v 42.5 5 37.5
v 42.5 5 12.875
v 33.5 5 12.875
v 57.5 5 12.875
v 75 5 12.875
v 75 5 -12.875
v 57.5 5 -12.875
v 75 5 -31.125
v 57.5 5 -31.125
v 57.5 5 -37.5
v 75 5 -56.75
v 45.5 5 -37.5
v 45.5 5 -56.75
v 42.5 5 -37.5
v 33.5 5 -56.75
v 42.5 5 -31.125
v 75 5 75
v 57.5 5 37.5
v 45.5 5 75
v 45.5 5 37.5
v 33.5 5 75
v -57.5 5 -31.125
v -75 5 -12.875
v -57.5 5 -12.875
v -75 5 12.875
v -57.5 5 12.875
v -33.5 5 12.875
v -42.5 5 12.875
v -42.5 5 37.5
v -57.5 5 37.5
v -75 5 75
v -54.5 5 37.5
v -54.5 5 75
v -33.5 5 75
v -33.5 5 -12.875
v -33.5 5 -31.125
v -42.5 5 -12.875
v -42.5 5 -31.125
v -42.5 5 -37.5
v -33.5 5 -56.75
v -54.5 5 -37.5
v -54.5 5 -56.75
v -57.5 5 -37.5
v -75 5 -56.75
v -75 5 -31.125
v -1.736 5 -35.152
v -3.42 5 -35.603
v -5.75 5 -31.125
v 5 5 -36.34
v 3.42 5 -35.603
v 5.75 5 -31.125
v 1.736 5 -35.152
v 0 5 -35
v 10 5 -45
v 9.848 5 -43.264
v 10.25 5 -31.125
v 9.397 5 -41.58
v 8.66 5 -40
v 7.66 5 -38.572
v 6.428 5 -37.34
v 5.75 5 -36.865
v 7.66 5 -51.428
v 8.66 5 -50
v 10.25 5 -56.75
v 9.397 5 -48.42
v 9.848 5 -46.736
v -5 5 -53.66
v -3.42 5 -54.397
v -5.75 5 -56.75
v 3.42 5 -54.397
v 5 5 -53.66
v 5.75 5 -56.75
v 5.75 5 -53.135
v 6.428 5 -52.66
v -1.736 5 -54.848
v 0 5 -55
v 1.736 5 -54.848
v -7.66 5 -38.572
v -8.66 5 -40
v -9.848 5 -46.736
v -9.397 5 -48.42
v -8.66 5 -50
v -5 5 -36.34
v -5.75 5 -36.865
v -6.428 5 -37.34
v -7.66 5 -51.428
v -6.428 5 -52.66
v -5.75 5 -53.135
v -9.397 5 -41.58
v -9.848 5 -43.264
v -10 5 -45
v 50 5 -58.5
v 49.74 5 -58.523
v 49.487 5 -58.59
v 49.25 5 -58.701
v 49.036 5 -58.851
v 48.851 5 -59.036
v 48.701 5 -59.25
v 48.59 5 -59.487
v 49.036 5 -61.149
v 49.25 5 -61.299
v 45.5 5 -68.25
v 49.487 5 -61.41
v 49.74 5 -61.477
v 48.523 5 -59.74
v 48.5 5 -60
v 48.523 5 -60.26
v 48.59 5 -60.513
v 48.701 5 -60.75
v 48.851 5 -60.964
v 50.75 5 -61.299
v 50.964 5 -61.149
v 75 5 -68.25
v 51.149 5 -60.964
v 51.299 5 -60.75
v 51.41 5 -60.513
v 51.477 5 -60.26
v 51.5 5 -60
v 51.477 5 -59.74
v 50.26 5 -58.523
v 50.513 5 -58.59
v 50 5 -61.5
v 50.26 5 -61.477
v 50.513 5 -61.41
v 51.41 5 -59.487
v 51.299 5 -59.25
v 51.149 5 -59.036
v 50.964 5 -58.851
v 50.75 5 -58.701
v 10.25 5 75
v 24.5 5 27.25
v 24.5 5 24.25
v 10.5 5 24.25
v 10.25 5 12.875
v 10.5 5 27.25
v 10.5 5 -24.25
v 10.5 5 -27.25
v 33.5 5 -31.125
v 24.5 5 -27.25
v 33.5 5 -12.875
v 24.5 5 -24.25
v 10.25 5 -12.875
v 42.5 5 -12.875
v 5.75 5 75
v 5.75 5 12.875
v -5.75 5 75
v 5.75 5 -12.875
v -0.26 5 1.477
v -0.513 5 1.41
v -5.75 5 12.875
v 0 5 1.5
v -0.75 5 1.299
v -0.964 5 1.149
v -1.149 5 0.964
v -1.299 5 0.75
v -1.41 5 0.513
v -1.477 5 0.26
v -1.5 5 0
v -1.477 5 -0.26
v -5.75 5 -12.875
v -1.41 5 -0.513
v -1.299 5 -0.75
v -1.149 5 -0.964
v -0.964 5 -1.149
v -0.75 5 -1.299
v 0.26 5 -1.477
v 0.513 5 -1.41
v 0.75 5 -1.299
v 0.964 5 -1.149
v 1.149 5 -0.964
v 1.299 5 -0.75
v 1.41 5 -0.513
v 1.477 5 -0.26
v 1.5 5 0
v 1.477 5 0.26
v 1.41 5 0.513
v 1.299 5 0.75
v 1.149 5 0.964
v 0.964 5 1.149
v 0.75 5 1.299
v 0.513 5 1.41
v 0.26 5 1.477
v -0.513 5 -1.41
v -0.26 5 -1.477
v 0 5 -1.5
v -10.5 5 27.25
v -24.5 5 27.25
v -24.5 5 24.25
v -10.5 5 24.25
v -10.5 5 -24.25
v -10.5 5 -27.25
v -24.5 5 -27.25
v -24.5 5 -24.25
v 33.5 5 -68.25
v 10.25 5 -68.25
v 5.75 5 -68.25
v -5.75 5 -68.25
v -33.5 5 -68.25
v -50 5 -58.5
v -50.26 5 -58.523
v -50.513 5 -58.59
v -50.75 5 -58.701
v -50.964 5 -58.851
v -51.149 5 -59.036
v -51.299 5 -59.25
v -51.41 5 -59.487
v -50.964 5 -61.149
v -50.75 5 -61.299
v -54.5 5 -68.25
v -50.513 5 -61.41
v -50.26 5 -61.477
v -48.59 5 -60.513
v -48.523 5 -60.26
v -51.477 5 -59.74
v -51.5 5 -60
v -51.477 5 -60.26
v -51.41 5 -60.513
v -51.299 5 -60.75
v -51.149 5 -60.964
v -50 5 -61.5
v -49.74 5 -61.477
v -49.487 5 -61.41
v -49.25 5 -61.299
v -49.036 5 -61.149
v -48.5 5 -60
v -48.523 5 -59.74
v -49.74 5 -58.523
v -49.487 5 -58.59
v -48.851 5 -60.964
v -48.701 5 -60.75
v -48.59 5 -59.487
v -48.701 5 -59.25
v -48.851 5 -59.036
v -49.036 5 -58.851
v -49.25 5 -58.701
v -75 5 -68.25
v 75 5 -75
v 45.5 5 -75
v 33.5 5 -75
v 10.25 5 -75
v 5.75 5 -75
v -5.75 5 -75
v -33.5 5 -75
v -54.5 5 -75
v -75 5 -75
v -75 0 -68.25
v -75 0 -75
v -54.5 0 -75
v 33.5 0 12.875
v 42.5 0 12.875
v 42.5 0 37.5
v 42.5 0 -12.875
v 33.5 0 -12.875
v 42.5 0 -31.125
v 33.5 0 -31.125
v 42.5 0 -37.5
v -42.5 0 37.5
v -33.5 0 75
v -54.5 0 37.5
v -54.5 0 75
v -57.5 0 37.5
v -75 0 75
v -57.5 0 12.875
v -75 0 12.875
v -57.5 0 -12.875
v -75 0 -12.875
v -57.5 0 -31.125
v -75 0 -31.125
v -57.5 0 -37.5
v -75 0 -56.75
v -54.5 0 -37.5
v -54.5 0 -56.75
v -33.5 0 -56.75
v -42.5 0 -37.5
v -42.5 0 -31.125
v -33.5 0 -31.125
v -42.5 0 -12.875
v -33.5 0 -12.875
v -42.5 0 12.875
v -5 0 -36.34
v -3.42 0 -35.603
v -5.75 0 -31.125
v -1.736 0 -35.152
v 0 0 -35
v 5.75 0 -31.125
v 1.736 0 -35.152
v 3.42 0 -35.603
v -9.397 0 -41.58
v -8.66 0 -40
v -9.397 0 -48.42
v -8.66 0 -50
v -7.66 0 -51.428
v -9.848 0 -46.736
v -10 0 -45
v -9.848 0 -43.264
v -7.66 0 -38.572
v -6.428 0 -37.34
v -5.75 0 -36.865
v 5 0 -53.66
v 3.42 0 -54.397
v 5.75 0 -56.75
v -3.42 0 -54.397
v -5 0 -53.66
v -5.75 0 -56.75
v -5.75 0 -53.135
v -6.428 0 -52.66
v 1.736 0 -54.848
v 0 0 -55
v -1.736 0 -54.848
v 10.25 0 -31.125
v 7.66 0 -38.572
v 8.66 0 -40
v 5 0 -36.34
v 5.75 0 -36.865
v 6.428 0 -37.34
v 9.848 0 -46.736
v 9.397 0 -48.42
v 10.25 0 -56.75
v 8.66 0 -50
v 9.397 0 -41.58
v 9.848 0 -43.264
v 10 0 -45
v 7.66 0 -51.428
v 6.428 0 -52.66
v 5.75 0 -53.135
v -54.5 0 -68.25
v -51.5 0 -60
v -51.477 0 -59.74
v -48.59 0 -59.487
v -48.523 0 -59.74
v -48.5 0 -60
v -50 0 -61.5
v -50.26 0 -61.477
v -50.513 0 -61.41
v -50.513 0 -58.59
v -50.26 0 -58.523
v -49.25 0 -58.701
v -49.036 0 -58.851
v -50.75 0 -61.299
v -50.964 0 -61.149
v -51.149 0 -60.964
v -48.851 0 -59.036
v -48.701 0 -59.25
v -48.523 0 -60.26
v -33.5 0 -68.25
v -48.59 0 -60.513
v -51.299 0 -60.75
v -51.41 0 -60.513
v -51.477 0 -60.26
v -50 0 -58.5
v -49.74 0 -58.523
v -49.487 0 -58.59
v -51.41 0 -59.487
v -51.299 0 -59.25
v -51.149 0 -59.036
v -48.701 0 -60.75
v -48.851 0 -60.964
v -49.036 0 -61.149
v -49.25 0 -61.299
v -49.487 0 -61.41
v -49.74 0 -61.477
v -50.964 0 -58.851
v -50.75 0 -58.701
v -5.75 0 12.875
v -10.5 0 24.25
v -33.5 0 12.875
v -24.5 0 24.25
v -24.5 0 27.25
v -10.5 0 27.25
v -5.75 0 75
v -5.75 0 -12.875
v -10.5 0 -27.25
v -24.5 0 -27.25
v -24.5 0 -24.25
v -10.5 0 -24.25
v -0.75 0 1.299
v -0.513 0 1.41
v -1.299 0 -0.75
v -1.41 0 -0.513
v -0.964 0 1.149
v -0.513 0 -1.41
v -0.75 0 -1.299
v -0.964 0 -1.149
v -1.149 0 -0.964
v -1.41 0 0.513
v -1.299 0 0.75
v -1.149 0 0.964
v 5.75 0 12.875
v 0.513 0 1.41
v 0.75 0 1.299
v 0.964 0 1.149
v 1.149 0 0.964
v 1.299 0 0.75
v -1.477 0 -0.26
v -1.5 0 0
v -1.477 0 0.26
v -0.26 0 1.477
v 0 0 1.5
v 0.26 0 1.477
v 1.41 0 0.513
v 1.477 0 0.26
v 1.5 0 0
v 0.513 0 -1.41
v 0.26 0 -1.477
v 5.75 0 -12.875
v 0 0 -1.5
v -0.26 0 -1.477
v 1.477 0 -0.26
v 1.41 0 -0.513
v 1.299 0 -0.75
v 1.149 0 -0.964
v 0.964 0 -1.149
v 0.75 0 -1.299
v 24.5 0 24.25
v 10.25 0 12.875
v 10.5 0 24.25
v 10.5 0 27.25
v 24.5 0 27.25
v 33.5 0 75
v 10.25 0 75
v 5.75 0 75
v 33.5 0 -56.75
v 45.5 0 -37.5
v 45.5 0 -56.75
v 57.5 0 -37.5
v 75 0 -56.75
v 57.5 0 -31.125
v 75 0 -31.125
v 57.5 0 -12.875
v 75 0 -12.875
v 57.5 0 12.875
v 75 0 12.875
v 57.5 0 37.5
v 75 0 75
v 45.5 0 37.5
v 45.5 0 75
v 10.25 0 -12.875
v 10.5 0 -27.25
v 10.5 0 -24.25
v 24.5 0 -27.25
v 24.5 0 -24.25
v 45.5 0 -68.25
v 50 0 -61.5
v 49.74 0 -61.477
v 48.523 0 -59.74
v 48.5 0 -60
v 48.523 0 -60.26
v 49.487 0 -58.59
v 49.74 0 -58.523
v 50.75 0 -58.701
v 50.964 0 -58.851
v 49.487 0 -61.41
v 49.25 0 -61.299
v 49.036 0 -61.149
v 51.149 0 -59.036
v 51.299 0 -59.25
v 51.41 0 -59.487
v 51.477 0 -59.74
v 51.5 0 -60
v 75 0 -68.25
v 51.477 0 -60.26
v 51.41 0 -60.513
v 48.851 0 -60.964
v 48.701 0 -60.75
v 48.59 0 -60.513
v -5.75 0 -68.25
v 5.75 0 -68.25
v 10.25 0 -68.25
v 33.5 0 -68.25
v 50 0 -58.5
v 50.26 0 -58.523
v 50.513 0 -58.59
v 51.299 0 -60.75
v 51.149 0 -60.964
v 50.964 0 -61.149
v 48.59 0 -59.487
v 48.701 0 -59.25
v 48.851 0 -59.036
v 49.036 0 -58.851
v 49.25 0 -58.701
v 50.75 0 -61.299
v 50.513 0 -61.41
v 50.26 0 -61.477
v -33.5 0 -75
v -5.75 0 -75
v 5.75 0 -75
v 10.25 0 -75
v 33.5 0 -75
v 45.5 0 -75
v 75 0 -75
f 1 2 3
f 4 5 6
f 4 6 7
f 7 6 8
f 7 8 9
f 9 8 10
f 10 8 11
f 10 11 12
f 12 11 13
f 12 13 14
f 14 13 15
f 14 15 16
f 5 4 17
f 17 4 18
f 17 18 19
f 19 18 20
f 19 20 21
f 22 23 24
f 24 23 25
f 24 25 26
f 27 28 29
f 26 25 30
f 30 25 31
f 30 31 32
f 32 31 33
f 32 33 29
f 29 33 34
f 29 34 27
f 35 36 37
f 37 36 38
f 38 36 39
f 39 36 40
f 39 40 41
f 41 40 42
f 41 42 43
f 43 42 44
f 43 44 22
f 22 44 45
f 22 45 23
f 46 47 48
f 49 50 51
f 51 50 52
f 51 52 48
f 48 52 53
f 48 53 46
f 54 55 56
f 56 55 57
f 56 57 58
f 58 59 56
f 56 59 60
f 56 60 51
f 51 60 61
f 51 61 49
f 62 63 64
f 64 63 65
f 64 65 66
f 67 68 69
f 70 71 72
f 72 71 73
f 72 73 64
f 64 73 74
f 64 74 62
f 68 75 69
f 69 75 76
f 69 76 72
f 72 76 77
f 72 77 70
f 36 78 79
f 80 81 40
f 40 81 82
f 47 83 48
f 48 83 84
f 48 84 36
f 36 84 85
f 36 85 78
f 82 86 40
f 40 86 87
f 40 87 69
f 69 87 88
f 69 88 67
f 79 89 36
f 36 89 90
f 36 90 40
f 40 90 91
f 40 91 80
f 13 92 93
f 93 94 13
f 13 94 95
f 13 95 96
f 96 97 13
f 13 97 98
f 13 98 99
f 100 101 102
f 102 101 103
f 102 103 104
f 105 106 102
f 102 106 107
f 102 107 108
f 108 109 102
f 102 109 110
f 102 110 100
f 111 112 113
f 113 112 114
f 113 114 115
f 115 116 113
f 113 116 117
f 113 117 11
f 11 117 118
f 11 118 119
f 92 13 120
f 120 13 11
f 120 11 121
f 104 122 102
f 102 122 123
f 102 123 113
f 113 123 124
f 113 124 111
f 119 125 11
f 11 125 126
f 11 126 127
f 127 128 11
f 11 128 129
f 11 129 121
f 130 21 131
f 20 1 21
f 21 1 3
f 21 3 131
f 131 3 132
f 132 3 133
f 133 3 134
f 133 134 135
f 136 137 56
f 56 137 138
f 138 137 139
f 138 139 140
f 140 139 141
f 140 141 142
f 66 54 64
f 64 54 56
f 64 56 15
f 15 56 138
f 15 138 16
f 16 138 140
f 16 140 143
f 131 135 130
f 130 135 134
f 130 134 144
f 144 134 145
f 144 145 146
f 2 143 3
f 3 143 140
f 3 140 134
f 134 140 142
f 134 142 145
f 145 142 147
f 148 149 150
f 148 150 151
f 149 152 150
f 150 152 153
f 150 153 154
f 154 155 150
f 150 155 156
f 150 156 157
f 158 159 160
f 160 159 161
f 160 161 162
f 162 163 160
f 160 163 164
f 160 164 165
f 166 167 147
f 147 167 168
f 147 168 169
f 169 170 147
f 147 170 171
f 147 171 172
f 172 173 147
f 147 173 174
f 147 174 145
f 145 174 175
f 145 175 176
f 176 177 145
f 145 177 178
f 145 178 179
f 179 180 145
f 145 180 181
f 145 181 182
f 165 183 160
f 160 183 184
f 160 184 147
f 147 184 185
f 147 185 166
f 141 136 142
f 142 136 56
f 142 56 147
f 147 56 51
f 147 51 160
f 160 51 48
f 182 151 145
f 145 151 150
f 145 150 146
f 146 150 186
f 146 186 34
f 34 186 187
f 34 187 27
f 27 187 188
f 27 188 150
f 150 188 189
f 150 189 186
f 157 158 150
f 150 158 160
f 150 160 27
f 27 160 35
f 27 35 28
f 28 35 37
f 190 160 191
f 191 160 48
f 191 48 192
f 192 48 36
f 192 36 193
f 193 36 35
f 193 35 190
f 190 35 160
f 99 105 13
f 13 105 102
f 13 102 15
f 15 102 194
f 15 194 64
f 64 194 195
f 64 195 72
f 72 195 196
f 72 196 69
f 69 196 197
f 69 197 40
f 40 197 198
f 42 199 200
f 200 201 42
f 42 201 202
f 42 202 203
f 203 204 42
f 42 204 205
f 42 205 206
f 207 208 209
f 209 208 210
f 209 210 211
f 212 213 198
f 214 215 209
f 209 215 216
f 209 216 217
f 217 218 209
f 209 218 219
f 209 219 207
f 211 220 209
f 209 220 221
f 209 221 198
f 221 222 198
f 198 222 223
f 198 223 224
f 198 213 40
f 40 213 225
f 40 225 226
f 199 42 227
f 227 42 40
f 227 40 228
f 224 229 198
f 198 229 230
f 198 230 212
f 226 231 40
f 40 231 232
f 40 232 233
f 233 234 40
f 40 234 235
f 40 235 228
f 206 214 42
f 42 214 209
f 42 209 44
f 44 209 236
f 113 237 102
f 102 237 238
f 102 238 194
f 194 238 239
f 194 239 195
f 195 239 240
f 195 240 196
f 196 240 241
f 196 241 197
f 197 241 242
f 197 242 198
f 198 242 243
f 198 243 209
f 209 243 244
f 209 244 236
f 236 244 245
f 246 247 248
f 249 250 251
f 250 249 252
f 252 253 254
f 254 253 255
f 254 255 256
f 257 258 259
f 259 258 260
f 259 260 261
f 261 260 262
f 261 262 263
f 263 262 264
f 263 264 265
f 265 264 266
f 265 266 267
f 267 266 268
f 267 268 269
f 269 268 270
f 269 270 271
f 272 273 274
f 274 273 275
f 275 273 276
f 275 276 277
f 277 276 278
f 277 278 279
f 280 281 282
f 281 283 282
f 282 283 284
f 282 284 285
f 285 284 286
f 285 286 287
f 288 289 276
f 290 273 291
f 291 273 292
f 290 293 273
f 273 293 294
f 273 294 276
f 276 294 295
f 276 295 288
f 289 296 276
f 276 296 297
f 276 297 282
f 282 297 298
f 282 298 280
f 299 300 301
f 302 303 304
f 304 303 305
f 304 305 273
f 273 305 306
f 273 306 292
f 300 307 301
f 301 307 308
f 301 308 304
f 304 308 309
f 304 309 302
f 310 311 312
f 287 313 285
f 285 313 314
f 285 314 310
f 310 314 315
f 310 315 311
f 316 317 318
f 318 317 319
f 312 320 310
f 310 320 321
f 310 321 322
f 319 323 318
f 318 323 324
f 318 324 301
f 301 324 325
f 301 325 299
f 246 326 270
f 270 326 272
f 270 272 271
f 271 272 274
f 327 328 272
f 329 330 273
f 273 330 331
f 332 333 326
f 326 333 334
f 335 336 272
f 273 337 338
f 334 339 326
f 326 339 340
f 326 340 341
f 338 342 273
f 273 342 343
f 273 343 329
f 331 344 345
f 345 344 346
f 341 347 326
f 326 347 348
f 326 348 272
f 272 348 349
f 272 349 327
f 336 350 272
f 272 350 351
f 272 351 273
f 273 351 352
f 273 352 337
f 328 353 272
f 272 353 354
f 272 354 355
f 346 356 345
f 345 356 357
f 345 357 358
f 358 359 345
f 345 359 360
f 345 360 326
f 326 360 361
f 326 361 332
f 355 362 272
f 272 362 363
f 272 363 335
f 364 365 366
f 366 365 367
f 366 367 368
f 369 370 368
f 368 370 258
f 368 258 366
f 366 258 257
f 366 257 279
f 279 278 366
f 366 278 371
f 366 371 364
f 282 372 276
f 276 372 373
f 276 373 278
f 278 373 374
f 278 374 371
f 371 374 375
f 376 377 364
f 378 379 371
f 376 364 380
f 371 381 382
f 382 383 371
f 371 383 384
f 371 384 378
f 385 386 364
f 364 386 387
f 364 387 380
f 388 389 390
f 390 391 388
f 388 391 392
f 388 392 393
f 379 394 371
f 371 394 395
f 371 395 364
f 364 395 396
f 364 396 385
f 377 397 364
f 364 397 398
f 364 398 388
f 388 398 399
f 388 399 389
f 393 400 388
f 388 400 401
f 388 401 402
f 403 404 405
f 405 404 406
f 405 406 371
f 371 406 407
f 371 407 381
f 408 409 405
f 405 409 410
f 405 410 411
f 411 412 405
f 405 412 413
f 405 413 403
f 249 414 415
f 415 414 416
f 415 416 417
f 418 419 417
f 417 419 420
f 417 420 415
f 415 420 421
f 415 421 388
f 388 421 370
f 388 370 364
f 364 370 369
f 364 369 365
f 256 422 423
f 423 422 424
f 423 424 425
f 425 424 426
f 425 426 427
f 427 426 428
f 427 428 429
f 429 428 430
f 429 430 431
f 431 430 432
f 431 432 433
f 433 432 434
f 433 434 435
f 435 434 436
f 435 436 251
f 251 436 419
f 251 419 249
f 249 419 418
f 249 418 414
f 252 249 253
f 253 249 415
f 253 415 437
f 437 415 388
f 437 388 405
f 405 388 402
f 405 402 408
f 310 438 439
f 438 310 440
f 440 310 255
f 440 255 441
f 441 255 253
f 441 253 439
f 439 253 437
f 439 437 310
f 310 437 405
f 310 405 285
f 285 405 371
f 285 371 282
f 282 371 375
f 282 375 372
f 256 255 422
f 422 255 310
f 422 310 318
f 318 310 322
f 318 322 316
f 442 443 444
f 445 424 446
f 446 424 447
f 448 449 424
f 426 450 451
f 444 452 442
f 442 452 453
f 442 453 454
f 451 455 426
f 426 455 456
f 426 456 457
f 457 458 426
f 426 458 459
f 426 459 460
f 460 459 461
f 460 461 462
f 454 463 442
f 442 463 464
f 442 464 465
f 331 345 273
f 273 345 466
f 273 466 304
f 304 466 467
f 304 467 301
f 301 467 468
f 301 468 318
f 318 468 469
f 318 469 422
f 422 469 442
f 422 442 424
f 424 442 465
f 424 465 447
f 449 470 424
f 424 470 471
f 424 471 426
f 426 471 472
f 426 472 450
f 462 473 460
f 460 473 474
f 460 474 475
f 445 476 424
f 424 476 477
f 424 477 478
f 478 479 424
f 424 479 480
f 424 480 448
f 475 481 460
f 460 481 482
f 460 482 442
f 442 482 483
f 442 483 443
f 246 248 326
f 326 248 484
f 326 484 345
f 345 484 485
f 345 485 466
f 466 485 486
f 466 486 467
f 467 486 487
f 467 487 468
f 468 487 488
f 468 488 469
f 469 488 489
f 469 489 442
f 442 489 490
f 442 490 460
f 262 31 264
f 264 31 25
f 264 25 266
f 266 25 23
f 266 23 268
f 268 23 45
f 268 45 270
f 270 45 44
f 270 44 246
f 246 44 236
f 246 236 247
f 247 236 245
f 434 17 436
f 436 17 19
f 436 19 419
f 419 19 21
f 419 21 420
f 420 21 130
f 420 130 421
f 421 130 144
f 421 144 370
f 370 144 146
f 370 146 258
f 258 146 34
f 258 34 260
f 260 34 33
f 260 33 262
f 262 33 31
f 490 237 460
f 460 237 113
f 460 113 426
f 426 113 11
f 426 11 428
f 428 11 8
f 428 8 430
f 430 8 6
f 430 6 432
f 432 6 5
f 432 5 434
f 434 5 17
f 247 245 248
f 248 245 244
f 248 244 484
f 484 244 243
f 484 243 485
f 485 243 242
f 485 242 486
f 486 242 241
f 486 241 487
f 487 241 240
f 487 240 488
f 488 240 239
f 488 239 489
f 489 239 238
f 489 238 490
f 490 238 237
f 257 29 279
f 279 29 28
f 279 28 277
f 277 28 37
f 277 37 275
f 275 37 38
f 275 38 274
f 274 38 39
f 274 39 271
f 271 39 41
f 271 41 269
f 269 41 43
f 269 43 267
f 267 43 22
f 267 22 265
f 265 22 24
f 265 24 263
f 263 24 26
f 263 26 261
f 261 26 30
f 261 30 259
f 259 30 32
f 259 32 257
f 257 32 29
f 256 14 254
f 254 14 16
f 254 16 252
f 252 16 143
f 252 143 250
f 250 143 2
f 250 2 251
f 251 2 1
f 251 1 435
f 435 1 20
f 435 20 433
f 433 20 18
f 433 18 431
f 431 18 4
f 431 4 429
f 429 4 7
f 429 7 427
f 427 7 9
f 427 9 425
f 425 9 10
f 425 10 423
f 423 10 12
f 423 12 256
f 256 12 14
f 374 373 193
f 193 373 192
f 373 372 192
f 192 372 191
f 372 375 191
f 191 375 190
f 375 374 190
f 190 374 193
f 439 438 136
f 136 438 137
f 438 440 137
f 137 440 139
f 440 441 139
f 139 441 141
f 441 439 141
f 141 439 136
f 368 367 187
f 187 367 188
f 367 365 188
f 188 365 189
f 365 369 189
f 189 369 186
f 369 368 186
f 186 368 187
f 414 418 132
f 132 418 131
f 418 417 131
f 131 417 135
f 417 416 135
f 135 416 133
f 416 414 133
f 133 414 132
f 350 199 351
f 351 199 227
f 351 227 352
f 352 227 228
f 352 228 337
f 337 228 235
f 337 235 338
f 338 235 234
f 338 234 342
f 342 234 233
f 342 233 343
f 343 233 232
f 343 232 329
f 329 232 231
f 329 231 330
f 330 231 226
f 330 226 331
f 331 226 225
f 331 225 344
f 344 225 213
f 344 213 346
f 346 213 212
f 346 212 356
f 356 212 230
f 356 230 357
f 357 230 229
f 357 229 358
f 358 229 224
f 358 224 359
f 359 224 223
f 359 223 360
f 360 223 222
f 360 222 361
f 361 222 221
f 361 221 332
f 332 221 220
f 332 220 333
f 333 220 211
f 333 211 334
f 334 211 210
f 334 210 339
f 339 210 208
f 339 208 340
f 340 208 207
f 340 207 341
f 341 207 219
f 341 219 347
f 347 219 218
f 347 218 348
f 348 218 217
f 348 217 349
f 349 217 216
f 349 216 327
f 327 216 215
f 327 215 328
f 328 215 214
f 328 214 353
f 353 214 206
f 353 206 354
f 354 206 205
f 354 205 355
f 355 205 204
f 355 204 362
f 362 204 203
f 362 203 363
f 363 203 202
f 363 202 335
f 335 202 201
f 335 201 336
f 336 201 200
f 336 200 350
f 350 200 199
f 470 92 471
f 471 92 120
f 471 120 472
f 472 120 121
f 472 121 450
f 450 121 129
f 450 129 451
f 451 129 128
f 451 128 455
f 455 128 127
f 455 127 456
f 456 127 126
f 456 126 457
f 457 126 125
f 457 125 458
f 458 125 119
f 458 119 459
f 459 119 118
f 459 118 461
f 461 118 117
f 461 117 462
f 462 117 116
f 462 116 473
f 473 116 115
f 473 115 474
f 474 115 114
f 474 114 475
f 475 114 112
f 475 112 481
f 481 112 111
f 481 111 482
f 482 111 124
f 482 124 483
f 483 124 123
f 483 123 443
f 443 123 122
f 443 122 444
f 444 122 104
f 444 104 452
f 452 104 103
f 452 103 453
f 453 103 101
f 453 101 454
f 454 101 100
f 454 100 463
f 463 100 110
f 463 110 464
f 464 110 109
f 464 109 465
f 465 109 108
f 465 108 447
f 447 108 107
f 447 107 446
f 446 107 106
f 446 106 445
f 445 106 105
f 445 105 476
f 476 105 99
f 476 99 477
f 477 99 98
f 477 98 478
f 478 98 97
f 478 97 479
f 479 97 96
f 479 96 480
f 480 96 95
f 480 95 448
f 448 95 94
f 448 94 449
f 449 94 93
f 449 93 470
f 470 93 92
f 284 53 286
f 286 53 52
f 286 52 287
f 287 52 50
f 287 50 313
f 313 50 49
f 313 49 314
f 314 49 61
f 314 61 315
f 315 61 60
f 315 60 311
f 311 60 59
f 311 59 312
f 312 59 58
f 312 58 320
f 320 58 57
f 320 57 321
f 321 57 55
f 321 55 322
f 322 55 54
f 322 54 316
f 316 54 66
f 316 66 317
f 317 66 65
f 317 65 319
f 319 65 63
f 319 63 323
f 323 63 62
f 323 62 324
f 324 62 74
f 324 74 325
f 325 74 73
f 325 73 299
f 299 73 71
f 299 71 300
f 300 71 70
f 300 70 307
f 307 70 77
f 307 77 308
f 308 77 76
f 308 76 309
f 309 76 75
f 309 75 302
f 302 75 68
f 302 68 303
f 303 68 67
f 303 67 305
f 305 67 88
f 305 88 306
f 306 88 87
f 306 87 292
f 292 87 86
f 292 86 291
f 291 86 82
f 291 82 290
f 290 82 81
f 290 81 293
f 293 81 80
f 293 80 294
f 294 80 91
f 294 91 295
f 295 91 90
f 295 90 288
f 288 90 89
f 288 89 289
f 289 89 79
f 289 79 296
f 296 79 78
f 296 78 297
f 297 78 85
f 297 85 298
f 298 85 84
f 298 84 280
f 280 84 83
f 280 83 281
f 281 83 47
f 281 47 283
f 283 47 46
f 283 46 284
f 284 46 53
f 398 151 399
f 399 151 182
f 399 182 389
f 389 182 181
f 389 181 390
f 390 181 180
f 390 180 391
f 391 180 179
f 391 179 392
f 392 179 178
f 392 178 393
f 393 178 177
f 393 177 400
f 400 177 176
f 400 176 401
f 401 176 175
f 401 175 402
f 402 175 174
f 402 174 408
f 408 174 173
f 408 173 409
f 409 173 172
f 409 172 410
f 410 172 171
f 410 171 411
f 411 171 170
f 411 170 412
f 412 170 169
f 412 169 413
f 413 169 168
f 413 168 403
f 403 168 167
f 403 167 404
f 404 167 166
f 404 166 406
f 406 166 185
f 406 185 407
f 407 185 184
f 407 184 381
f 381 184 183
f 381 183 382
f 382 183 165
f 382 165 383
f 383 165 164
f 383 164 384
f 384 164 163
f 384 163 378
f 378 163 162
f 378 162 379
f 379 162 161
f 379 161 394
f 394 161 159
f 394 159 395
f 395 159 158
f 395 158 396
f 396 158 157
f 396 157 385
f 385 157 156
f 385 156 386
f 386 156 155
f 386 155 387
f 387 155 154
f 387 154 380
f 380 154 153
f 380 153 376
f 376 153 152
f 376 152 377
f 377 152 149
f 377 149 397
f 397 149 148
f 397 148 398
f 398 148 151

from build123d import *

# Parameters (mm, degrees)
SKETCH1_W           = 150
SKETCH1_H           = 150
SKETCH1_W_2         = 15
SKETCH1_H_2         = 75
BOSS_EXTRUDE1_DEPTH = 5
SKETCH2_R           = 1.5
SKETCH2_R_2         = 10
SKETCH2_W           = 14
SKETCH2_H           = 3
CUT_EXTRUDE1_DEPTH  = 5


with BuildPart() as part:
    # Sketch1 → Boss-Extrude1 (new body)
    with BuildSketch(Plane(origin=(0, 0, 0), x_dir=(1, 0, 0), z_dir=(0, 1, 0))):
        Rectangle(SKETCH1_W, SKETCH1_H)
        with Locations((-50, 0)):
            Rectangle(SKETCH1_W_2, SKETCH1_H_2, mode=Mode.SUBTRACT)
        with Locations((50, 0)):
            Rectangle(SKETCH1_W_2, SKETCH1_H_2, mode=Mode.SUBTRACT)
    extrude(amount=BOSS_EXTRUDE1_DEPTH)

    # Sketch2 → Cut-Extrude1 (cut)
    with BuildSketch(Plane(origin=(0, 5, 0), x_dir=(1, 0, 0), z_dir=(0, 1, 0))):
        with Locations((-50, 60)):
            Circle(SKETCH2_R)
        with Locations((50, 60)):
            Circle(SKETCH2_R)
        with Locations((0, 45)):
            Circle(SKETCH2_R_2)
        Circle(SKETCH2_R)
        with Locations((-17.5, 25.75)):
            Rectangle(SKETCH2_W, SKETCH2_H)
        with Locations((17.5, 25.75)):
            Rectangle(SKETCH2_W, SKETCH2_H)
        with Locations((-17.5, -25.75)):
            Rectangle(SKETCH2_W, SKETCH2_H)
        with Locations((17.5, -25.75)):
            Rectangle(SKETCH2_W, SKETCH2_H)
    extrude(amount=-CUT_EXTRUDE1_DEPTH, mode=Mode.SUBTRACT)


solid = part.part
